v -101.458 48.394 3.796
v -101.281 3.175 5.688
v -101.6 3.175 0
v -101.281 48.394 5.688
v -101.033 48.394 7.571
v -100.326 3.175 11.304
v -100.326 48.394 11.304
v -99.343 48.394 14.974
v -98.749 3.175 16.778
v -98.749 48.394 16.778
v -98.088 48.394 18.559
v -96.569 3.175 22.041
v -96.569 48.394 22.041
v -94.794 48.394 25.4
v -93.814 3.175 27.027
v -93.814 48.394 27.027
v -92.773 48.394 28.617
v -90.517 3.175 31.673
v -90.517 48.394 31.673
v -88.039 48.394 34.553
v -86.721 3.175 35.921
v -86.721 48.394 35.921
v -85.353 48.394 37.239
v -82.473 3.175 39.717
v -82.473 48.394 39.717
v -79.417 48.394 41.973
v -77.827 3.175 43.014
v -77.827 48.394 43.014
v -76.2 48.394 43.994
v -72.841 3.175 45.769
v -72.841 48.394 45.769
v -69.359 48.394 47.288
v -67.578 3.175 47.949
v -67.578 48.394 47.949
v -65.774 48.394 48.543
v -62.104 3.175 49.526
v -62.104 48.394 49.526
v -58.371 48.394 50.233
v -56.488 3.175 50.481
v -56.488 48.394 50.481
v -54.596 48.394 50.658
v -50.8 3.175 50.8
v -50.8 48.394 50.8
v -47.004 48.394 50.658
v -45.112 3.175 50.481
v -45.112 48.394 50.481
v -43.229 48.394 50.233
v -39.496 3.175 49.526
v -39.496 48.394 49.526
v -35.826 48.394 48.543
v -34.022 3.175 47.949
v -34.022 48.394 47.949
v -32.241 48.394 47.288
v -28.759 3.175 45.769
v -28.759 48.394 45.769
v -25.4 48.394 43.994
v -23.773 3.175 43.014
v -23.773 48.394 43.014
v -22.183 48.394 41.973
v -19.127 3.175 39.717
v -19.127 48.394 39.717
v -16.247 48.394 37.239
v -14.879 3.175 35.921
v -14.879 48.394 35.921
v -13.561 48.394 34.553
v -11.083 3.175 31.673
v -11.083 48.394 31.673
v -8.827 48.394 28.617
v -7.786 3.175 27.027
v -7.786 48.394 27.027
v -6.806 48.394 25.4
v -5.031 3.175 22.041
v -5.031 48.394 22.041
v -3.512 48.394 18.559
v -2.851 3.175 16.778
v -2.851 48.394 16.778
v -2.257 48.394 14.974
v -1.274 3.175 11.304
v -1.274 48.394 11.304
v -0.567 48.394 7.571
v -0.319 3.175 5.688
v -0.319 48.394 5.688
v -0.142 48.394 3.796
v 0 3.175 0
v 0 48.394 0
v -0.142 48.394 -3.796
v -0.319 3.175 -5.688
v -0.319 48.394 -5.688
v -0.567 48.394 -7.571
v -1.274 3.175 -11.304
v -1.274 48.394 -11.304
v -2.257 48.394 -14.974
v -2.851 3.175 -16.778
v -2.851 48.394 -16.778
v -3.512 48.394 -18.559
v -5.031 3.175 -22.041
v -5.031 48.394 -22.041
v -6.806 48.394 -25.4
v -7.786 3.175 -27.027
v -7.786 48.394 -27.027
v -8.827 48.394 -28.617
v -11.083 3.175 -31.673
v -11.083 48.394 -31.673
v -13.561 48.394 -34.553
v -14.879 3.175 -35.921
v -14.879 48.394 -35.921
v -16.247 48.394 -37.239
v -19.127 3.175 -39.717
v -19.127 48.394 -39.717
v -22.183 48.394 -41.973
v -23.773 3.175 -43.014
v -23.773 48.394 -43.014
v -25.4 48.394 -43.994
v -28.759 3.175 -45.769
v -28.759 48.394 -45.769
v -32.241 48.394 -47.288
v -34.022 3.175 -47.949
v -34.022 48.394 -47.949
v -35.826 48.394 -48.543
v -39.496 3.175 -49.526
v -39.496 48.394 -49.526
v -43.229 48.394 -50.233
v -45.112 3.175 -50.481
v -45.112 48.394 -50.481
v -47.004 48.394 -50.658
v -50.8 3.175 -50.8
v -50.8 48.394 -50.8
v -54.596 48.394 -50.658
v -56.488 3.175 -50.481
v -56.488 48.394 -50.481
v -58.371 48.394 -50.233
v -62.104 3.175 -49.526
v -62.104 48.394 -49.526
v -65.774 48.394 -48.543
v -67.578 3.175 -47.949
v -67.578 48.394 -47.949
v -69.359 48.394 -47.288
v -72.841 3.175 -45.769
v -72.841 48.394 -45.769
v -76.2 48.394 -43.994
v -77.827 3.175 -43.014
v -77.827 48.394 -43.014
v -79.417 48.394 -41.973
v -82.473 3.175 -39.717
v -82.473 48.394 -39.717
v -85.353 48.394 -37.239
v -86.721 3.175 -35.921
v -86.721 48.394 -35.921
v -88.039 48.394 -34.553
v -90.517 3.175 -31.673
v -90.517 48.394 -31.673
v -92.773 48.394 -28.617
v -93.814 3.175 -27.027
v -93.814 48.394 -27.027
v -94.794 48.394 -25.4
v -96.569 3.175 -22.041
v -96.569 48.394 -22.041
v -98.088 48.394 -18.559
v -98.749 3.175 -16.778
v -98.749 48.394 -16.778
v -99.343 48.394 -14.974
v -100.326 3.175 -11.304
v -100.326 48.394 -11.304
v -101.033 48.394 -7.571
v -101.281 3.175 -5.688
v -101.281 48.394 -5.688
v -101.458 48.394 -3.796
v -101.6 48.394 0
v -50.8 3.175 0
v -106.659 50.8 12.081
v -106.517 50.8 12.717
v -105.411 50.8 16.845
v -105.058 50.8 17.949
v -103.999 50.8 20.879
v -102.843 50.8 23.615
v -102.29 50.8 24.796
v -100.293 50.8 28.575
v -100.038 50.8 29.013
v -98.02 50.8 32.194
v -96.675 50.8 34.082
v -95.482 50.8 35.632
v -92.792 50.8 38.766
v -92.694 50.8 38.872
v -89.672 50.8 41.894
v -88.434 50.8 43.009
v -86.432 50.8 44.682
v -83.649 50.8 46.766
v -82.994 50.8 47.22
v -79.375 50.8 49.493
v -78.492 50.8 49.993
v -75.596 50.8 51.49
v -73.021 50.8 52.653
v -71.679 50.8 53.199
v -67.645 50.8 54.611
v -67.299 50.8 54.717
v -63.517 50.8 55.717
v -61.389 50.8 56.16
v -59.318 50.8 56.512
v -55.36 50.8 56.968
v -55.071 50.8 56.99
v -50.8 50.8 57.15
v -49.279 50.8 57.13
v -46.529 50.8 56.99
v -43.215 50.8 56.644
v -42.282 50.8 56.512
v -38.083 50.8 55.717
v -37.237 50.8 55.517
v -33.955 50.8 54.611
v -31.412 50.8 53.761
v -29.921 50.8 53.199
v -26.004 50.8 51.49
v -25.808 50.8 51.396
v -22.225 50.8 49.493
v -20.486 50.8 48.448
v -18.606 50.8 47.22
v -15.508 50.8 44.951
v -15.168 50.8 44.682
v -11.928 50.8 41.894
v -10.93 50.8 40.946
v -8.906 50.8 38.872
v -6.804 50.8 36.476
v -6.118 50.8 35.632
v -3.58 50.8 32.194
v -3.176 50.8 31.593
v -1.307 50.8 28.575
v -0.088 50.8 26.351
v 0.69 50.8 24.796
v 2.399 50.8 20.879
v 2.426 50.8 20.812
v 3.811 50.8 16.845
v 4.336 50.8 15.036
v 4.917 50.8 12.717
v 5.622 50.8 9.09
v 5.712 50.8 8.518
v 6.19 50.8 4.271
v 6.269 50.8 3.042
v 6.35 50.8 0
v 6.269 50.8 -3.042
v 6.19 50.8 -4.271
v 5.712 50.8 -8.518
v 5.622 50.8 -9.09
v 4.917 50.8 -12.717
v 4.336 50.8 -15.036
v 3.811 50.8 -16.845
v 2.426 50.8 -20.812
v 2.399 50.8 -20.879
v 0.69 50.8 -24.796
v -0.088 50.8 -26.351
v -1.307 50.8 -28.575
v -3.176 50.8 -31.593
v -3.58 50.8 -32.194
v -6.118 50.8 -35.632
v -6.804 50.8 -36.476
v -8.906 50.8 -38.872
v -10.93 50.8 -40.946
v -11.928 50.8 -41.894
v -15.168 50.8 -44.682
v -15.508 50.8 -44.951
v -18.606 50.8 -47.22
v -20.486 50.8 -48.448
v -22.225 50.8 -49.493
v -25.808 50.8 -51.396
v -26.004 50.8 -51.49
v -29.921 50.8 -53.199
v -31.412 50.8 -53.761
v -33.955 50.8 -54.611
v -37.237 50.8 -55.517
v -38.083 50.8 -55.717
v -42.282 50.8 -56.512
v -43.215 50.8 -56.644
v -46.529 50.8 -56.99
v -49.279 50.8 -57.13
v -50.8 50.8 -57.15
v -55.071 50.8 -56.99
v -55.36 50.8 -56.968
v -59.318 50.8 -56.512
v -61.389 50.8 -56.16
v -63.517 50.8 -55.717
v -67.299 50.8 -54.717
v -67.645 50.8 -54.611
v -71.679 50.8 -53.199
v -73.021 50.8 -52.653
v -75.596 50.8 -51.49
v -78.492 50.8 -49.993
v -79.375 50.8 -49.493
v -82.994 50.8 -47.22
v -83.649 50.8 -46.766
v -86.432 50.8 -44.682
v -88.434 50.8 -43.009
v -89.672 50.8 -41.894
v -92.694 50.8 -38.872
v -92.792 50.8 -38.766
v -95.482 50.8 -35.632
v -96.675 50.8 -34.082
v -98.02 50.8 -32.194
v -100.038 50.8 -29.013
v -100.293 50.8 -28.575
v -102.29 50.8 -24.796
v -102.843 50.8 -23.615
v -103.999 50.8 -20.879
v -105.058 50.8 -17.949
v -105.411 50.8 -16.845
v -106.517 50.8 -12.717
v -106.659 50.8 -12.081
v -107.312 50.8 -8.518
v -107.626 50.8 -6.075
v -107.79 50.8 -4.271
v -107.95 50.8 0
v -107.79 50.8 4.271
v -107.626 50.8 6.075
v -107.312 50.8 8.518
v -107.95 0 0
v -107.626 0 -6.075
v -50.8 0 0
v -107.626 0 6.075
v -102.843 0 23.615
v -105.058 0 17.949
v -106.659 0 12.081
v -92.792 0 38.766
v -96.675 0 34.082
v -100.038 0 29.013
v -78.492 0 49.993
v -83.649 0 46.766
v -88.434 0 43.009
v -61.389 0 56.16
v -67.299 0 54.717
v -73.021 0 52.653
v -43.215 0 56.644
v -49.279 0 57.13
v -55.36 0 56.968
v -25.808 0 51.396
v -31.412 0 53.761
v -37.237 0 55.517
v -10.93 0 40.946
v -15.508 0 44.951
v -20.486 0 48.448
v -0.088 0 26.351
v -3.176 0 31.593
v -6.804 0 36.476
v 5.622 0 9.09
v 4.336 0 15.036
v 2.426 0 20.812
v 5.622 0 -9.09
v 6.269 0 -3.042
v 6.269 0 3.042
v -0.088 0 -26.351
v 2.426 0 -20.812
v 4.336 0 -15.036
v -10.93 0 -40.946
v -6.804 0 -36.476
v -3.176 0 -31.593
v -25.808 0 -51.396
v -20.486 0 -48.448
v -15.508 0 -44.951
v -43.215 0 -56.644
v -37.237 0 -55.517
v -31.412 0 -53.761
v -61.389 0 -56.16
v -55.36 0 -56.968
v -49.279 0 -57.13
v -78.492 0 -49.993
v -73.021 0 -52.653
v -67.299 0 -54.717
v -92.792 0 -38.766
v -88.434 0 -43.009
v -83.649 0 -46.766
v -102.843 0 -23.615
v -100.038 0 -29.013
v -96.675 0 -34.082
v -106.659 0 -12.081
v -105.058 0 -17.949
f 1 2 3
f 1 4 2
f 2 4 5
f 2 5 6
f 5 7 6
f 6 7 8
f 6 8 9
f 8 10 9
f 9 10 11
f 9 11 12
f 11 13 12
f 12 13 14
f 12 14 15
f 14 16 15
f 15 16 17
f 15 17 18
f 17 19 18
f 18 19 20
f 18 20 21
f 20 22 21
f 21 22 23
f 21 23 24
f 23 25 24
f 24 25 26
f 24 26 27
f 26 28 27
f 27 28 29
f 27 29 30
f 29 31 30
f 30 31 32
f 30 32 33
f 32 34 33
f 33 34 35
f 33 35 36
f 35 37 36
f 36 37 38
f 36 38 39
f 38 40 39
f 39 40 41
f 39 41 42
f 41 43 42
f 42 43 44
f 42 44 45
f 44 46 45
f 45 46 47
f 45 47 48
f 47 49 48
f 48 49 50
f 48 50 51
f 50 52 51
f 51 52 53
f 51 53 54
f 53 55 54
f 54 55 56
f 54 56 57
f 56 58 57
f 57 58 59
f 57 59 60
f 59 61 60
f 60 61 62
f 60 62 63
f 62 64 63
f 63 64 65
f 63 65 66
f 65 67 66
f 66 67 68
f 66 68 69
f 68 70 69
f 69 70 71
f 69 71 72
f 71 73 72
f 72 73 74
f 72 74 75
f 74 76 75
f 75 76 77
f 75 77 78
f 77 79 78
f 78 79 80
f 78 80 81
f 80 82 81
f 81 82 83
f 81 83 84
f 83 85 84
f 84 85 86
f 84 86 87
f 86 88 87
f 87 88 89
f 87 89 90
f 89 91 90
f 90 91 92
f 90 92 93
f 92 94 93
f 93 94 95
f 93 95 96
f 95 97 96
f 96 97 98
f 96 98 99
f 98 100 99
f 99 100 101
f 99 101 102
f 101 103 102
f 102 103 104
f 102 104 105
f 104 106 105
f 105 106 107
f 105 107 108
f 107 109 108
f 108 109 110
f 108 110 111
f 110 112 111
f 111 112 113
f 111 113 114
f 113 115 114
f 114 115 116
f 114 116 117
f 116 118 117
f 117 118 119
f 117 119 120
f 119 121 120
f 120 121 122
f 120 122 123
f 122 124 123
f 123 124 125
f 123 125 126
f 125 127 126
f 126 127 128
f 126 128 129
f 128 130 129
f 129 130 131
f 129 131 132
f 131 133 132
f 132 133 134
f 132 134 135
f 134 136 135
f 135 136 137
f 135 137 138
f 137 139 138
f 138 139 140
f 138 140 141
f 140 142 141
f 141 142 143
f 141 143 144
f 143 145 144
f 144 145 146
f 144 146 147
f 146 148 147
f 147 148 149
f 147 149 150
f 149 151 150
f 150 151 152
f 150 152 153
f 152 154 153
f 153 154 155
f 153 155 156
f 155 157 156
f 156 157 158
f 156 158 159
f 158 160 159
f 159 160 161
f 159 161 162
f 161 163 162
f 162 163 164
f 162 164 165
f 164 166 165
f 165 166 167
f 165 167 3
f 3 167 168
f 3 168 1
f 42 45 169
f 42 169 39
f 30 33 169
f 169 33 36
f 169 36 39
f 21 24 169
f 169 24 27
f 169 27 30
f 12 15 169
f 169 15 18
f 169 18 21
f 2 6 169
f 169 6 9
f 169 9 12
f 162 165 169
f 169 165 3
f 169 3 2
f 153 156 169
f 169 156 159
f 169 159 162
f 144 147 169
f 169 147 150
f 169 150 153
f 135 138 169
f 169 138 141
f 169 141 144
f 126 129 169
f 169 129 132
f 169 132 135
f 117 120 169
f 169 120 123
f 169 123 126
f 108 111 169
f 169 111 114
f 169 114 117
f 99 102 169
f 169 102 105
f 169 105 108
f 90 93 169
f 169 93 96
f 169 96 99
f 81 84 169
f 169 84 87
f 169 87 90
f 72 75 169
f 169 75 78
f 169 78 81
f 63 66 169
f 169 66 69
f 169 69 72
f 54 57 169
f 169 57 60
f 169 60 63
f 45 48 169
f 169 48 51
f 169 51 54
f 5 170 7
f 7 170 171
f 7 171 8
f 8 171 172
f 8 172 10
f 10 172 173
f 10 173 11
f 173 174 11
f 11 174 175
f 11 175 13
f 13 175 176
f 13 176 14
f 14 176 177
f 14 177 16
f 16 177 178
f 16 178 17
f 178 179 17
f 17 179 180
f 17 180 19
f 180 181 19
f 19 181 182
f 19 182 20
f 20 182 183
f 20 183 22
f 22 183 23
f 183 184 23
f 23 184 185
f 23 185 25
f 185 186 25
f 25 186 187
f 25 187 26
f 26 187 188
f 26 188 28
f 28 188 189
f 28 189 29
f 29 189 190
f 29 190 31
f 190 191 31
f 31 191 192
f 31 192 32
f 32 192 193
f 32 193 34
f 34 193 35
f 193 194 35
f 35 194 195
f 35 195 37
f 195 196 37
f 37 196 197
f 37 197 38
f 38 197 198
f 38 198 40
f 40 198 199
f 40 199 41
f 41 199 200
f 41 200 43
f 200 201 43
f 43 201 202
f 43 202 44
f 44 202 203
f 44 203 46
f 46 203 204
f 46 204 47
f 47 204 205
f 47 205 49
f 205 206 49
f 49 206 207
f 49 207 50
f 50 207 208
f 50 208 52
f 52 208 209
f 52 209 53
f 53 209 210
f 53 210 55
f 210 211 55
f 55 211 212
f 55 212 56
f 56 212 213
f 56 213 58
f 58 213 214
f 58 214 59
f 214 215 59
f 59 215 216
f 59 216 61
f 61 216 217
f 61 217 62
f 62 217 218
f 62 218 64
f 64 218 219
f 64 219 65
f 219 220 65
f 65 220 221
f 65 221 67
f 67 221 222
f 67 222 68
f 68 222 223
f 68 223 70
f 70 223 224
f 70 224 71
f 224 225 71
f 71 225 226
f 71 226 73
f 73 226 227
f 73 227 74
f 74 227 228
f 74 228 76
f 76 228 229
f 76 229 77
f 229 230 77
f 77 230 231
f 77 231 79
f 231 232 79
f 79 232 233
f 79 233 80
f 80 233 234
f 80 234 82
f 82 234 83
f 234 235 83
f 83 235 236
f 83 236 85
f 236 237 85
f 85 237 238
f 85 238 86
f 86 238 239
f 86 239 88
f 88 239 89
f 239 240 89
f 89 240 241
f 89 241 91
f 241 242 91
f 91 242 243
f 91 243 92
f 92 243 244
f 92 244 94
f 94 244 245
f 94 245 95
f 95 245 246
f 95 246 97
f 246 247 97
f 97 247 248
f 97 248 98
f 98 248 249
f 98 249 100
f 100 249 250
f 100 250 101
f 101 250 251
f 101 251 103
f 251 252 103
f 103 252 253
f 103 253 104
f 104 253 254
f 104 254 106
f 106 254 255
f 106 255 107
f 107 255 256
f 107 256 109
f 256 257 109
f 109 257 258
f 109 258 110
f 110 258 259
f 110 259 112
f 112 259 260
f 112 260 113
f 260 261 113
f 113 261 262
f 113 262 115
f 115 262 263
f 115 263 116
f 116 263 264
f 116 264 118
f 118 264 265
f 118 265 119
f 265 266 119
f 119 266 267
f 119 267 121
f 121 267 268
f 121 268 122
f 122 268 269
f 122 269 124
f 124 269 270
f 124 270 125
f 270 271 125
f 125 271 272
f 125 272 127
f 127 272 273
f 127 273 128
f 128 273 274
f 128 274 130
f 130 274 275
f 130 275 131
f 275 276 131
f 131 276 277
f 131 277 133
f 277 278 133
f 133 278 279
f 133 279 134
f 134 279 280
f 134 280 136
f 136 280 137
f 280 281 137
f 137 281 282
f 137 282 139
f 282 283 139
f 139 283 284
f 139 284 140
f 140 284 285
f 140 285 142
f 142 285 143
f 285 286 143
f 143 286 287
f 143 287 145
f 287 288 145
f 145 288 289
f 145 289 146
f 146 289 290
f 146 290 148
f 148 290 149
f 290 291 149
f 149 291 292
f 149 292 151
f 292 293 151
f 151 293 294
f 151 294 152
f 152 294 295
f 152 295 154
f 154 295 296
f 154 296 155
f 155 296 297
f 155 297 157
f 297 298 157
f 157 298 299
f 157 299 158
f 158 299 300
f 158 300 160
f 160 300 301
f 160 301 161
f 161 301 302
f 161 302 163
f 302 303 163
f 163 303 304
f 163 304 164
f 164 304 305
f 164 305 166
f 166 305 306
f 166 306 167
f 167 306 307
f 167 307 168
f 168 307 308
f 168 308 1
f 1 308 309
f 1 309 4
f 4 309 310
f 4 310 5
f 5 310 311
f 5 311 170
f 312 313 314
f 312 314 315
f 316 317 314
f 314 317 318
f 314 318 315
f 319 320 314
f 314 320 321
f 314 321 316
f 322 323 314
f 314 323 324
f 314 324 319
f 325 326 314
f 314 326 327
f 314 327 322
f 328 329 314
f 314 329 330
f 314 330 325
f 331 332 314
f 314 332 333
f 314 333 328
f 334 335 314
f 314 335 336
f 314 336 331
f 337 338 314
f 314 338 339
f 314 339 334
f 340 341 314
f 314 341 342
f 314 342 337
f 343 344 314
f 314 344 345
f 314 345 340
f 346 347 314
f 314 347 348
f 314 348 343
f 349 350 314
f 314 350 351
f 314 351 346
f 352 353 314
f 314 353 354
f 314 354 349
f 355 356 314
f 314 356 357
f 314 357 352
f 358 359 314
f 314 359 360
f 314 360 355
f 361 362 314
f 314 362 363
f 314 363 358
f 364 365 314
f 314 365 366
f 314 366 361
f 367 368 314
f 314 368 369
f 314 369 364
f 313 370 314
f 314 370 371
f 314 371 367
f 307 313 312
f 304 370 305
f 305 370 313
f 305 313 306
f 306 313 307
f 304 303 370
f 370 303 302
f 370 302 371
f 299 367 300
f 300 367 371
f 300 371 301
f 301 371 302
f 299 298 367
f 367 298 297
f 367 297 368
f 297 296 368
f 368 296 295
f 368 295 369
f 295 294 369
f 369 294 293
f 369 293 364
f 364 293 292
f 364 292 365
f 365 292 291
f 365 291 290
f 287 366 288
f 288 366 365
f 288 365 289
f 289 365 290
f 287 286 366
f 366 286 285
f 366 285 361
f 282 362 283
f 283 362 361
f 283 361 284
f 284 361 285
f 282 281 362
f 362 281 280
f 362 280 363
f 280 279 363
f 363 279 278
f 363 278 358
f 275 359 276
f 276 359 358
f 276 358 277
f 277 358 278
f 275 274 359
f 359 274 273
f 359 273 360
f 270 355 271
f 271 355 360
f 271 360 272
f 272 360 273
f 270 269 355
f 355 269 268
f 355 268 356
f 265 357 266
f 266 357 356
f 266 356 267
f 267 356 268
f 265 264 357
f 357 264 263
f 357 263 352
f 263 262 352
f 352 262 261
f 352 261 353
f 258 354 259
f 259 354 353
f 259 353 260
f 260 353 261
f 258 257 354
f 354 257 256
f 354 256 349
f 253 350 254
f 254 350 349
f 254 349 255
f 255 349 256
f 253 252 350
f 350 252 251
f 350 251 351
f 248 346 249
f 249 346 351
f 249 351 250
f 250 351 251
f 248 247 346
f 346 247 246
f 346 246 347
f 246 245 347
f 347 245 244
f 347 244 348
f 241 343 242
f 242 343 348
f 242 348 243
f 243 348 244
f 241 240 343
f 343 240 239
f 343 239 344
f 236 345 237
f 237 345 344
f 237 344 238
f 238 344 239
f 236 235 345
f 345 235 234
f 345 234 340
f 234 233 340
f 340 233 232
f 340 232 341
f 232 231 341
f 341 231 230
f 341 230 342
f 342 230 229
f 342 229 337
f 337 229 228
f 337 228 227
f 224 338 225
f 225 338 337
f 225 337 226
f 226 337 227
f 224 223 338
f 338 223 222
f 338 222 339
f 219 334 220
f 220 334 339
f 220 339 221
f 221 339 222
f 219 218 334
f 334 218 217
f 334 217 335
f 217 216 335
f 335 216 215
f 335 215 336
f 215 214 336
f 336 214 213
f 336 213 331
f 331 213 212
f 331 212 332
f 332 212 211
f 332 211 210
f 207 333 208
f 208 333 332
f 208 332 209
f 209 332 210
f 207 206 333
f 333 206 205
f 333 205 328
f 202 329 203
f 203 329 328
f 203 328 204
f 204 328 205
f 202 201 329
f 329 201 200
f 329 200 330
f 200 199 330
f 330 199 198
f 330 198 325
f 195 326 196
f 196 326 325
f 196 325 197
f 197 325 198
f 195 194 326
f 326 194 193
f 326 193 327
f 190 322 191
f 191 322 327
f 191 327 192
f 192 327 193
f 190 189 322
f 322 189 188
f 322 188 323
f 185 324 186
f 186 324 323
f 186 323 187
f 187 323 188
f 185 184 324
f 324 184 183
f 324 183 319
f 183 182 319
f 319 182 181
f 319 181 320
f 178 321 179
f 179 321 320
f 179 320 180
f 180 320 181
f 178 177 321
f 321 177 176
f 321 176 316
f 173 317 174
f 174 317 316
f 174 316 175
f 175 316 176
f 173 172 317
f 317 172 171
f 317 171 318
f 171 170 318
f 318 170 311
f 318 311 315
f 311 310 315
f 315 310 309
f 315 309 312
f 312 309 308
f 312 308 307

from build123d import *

# Parameters (mm, degrees)
SKETCH1_W           = 6.35
SKETCH1_H           = 50.8
BOSS_EXTRUDE1_START = 3.175
SKETCH2_R           = 57.15
BOSS_EXTRUDE1_DEPTH = 3.175


with BuildPart() as part:
    # Sketch1 → Revolve1 (revolve)
    with BuildSketch(Plane.XY, mode=Mode.PRIVATE) as revolve1_sk:
        with Locations((3.175, 25.4)):
            Rectangle(SKETCH1_W, SKETCH1_H)
    revolve(revolve1_sk.sketch.rotate(Axis((-50.8, 50.8, 0), (0, -1, 0)), 180), axis=Axis((-50.8, 50.8, 0), (0, -1, 0)))

    # Sketch2 → Boss-Extrude1 (add)
    with BuildSketch(Plane(origin=(0, 0, 0), x_dir=(1, 0, 0), z_dir=(0, 1, 0)).offset(BOSS_EXTRUDE1_START)):
        with Locations(Location((-50.8, 0, 0), (0, 0, 180))):
            Circle(SKETCH2_R)
    extrude(amount=-BOSS_EXTRUDE1_DEPTH)

    # Sketch4 → Cut-Revolve1 (revolve, cut)
    with BuildSketch(Plane.XY):
        with BuildLine():
            Line((-107.95, 50.8), (-50.8, 50.8))
            Line((-50.8, 50.8), (-50.8, 39.678581179))
            ThreePointArc((-50.8, 39.678581179), (-79.911030798, 42.484771528), (-107.95, 50.8))
        make_face()
    revolve(axis=Axis((-50.8, 46.230510517, 0), (0, 1, 0)), mode=Mode.SUBTRACT)


solid = part.part
